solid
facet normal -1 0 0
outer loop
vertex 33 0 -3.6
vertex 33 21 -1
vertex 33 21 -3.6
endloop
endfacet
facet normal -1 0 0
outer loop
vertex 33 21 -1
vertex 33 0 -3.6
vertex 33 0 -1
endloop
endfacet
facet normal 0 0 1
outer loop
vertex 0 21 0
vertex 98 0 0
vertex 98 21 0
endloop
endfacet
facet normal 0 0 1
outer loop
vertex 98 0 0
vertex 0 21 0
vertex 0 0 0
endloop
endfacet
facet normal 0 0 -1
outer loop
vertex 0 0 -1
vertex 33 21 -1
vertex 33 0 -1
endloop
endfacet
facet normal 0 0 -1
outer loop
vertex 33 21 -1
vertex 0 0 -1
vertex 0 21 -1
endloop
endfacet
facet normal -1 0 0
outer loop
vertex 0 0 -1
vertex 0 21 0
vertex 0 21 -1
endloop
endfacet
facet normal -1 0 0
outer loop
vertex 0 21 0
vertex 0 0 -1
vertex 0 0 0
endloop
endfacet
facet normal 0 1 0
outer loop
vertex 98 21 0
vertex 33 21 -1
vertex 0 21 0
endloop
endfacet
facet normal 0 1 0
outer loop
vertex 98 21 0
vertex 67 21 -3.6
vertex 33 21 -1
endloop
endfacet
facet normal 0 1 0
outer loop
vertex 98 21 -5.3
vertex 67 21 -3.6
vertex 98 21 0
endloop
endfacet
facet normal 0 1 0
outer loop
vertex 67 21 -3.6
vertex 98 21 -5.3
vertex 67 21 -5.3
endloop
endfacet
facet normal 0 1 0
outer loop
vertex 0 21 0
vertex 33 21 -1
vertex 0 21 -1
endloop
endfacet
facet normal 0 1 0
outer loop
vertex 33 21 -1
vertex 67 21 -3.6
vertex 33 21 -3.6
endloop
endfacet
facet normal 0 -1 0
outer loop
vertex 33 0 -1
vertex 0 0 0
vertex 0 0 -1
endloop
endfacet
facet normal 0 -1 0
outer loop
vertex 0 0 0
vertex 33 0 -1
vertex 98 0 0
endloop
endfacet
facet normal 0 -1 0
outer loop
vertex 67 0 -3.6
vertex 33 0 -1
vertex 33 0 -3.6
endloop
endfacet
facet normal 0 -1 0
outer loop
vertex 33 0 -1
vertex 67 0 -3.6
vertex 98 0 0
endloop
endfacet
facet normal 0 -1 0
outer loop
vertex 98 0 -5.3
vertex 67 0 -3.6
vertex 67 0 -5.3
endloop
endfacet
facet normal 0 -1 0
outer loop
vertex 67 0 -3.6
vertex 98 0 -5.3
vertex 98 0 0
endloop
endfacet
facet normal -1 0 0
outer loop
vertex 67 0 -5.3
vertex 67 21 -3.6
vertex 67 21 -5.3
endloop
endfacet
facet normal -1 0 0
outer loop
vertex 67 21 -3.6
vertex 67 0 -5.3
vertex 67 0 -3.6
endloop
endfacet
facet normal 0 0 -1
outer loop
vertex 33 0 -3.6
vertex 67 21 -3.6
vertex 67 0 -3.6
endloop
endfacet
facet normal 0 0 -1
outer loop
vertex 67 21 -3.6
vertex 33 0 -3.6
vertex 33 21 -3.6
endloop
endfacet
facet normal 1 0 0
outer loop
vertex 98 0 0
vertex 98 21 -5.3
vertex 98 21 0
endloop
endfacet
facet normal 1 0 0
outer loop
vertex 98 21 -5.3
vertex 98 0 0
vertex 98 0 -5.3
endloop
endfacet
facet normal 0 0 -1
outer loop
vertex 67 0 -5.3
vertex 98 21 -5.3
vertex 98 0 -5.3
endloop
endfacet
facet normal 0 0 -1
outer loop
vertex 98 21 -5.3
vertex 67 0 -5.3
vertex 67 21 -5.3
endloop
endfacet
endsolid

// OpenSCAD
padd_left = 14;
padd_right = 14;
hdmi_height = 19.7;
usb_height = 17.1;
lan_height = 15.4;
hdmi_width = 19;
usb_width = 34;
lan_width = 17;
depth = 21;

step1_height = 1;
step1_width = padd_left + hdmi_width;

step2_height = step1_height + (hdmi_height - usb_height);
step2_width = usb_width;

step3_height = step1_height + (hdmi_height - lan_height);
step3_width = lan_width + padd_right;

translate([0,0,-step1_height])
cube([step1_width, depth, step1_height]);

translate([step1_width,0,-step2_height])
cube([step2_width, depth, step2_height]);


translate([step1_width + step2_width,0,-step3_height])
cube([step3_width, depth, step3_height]);
